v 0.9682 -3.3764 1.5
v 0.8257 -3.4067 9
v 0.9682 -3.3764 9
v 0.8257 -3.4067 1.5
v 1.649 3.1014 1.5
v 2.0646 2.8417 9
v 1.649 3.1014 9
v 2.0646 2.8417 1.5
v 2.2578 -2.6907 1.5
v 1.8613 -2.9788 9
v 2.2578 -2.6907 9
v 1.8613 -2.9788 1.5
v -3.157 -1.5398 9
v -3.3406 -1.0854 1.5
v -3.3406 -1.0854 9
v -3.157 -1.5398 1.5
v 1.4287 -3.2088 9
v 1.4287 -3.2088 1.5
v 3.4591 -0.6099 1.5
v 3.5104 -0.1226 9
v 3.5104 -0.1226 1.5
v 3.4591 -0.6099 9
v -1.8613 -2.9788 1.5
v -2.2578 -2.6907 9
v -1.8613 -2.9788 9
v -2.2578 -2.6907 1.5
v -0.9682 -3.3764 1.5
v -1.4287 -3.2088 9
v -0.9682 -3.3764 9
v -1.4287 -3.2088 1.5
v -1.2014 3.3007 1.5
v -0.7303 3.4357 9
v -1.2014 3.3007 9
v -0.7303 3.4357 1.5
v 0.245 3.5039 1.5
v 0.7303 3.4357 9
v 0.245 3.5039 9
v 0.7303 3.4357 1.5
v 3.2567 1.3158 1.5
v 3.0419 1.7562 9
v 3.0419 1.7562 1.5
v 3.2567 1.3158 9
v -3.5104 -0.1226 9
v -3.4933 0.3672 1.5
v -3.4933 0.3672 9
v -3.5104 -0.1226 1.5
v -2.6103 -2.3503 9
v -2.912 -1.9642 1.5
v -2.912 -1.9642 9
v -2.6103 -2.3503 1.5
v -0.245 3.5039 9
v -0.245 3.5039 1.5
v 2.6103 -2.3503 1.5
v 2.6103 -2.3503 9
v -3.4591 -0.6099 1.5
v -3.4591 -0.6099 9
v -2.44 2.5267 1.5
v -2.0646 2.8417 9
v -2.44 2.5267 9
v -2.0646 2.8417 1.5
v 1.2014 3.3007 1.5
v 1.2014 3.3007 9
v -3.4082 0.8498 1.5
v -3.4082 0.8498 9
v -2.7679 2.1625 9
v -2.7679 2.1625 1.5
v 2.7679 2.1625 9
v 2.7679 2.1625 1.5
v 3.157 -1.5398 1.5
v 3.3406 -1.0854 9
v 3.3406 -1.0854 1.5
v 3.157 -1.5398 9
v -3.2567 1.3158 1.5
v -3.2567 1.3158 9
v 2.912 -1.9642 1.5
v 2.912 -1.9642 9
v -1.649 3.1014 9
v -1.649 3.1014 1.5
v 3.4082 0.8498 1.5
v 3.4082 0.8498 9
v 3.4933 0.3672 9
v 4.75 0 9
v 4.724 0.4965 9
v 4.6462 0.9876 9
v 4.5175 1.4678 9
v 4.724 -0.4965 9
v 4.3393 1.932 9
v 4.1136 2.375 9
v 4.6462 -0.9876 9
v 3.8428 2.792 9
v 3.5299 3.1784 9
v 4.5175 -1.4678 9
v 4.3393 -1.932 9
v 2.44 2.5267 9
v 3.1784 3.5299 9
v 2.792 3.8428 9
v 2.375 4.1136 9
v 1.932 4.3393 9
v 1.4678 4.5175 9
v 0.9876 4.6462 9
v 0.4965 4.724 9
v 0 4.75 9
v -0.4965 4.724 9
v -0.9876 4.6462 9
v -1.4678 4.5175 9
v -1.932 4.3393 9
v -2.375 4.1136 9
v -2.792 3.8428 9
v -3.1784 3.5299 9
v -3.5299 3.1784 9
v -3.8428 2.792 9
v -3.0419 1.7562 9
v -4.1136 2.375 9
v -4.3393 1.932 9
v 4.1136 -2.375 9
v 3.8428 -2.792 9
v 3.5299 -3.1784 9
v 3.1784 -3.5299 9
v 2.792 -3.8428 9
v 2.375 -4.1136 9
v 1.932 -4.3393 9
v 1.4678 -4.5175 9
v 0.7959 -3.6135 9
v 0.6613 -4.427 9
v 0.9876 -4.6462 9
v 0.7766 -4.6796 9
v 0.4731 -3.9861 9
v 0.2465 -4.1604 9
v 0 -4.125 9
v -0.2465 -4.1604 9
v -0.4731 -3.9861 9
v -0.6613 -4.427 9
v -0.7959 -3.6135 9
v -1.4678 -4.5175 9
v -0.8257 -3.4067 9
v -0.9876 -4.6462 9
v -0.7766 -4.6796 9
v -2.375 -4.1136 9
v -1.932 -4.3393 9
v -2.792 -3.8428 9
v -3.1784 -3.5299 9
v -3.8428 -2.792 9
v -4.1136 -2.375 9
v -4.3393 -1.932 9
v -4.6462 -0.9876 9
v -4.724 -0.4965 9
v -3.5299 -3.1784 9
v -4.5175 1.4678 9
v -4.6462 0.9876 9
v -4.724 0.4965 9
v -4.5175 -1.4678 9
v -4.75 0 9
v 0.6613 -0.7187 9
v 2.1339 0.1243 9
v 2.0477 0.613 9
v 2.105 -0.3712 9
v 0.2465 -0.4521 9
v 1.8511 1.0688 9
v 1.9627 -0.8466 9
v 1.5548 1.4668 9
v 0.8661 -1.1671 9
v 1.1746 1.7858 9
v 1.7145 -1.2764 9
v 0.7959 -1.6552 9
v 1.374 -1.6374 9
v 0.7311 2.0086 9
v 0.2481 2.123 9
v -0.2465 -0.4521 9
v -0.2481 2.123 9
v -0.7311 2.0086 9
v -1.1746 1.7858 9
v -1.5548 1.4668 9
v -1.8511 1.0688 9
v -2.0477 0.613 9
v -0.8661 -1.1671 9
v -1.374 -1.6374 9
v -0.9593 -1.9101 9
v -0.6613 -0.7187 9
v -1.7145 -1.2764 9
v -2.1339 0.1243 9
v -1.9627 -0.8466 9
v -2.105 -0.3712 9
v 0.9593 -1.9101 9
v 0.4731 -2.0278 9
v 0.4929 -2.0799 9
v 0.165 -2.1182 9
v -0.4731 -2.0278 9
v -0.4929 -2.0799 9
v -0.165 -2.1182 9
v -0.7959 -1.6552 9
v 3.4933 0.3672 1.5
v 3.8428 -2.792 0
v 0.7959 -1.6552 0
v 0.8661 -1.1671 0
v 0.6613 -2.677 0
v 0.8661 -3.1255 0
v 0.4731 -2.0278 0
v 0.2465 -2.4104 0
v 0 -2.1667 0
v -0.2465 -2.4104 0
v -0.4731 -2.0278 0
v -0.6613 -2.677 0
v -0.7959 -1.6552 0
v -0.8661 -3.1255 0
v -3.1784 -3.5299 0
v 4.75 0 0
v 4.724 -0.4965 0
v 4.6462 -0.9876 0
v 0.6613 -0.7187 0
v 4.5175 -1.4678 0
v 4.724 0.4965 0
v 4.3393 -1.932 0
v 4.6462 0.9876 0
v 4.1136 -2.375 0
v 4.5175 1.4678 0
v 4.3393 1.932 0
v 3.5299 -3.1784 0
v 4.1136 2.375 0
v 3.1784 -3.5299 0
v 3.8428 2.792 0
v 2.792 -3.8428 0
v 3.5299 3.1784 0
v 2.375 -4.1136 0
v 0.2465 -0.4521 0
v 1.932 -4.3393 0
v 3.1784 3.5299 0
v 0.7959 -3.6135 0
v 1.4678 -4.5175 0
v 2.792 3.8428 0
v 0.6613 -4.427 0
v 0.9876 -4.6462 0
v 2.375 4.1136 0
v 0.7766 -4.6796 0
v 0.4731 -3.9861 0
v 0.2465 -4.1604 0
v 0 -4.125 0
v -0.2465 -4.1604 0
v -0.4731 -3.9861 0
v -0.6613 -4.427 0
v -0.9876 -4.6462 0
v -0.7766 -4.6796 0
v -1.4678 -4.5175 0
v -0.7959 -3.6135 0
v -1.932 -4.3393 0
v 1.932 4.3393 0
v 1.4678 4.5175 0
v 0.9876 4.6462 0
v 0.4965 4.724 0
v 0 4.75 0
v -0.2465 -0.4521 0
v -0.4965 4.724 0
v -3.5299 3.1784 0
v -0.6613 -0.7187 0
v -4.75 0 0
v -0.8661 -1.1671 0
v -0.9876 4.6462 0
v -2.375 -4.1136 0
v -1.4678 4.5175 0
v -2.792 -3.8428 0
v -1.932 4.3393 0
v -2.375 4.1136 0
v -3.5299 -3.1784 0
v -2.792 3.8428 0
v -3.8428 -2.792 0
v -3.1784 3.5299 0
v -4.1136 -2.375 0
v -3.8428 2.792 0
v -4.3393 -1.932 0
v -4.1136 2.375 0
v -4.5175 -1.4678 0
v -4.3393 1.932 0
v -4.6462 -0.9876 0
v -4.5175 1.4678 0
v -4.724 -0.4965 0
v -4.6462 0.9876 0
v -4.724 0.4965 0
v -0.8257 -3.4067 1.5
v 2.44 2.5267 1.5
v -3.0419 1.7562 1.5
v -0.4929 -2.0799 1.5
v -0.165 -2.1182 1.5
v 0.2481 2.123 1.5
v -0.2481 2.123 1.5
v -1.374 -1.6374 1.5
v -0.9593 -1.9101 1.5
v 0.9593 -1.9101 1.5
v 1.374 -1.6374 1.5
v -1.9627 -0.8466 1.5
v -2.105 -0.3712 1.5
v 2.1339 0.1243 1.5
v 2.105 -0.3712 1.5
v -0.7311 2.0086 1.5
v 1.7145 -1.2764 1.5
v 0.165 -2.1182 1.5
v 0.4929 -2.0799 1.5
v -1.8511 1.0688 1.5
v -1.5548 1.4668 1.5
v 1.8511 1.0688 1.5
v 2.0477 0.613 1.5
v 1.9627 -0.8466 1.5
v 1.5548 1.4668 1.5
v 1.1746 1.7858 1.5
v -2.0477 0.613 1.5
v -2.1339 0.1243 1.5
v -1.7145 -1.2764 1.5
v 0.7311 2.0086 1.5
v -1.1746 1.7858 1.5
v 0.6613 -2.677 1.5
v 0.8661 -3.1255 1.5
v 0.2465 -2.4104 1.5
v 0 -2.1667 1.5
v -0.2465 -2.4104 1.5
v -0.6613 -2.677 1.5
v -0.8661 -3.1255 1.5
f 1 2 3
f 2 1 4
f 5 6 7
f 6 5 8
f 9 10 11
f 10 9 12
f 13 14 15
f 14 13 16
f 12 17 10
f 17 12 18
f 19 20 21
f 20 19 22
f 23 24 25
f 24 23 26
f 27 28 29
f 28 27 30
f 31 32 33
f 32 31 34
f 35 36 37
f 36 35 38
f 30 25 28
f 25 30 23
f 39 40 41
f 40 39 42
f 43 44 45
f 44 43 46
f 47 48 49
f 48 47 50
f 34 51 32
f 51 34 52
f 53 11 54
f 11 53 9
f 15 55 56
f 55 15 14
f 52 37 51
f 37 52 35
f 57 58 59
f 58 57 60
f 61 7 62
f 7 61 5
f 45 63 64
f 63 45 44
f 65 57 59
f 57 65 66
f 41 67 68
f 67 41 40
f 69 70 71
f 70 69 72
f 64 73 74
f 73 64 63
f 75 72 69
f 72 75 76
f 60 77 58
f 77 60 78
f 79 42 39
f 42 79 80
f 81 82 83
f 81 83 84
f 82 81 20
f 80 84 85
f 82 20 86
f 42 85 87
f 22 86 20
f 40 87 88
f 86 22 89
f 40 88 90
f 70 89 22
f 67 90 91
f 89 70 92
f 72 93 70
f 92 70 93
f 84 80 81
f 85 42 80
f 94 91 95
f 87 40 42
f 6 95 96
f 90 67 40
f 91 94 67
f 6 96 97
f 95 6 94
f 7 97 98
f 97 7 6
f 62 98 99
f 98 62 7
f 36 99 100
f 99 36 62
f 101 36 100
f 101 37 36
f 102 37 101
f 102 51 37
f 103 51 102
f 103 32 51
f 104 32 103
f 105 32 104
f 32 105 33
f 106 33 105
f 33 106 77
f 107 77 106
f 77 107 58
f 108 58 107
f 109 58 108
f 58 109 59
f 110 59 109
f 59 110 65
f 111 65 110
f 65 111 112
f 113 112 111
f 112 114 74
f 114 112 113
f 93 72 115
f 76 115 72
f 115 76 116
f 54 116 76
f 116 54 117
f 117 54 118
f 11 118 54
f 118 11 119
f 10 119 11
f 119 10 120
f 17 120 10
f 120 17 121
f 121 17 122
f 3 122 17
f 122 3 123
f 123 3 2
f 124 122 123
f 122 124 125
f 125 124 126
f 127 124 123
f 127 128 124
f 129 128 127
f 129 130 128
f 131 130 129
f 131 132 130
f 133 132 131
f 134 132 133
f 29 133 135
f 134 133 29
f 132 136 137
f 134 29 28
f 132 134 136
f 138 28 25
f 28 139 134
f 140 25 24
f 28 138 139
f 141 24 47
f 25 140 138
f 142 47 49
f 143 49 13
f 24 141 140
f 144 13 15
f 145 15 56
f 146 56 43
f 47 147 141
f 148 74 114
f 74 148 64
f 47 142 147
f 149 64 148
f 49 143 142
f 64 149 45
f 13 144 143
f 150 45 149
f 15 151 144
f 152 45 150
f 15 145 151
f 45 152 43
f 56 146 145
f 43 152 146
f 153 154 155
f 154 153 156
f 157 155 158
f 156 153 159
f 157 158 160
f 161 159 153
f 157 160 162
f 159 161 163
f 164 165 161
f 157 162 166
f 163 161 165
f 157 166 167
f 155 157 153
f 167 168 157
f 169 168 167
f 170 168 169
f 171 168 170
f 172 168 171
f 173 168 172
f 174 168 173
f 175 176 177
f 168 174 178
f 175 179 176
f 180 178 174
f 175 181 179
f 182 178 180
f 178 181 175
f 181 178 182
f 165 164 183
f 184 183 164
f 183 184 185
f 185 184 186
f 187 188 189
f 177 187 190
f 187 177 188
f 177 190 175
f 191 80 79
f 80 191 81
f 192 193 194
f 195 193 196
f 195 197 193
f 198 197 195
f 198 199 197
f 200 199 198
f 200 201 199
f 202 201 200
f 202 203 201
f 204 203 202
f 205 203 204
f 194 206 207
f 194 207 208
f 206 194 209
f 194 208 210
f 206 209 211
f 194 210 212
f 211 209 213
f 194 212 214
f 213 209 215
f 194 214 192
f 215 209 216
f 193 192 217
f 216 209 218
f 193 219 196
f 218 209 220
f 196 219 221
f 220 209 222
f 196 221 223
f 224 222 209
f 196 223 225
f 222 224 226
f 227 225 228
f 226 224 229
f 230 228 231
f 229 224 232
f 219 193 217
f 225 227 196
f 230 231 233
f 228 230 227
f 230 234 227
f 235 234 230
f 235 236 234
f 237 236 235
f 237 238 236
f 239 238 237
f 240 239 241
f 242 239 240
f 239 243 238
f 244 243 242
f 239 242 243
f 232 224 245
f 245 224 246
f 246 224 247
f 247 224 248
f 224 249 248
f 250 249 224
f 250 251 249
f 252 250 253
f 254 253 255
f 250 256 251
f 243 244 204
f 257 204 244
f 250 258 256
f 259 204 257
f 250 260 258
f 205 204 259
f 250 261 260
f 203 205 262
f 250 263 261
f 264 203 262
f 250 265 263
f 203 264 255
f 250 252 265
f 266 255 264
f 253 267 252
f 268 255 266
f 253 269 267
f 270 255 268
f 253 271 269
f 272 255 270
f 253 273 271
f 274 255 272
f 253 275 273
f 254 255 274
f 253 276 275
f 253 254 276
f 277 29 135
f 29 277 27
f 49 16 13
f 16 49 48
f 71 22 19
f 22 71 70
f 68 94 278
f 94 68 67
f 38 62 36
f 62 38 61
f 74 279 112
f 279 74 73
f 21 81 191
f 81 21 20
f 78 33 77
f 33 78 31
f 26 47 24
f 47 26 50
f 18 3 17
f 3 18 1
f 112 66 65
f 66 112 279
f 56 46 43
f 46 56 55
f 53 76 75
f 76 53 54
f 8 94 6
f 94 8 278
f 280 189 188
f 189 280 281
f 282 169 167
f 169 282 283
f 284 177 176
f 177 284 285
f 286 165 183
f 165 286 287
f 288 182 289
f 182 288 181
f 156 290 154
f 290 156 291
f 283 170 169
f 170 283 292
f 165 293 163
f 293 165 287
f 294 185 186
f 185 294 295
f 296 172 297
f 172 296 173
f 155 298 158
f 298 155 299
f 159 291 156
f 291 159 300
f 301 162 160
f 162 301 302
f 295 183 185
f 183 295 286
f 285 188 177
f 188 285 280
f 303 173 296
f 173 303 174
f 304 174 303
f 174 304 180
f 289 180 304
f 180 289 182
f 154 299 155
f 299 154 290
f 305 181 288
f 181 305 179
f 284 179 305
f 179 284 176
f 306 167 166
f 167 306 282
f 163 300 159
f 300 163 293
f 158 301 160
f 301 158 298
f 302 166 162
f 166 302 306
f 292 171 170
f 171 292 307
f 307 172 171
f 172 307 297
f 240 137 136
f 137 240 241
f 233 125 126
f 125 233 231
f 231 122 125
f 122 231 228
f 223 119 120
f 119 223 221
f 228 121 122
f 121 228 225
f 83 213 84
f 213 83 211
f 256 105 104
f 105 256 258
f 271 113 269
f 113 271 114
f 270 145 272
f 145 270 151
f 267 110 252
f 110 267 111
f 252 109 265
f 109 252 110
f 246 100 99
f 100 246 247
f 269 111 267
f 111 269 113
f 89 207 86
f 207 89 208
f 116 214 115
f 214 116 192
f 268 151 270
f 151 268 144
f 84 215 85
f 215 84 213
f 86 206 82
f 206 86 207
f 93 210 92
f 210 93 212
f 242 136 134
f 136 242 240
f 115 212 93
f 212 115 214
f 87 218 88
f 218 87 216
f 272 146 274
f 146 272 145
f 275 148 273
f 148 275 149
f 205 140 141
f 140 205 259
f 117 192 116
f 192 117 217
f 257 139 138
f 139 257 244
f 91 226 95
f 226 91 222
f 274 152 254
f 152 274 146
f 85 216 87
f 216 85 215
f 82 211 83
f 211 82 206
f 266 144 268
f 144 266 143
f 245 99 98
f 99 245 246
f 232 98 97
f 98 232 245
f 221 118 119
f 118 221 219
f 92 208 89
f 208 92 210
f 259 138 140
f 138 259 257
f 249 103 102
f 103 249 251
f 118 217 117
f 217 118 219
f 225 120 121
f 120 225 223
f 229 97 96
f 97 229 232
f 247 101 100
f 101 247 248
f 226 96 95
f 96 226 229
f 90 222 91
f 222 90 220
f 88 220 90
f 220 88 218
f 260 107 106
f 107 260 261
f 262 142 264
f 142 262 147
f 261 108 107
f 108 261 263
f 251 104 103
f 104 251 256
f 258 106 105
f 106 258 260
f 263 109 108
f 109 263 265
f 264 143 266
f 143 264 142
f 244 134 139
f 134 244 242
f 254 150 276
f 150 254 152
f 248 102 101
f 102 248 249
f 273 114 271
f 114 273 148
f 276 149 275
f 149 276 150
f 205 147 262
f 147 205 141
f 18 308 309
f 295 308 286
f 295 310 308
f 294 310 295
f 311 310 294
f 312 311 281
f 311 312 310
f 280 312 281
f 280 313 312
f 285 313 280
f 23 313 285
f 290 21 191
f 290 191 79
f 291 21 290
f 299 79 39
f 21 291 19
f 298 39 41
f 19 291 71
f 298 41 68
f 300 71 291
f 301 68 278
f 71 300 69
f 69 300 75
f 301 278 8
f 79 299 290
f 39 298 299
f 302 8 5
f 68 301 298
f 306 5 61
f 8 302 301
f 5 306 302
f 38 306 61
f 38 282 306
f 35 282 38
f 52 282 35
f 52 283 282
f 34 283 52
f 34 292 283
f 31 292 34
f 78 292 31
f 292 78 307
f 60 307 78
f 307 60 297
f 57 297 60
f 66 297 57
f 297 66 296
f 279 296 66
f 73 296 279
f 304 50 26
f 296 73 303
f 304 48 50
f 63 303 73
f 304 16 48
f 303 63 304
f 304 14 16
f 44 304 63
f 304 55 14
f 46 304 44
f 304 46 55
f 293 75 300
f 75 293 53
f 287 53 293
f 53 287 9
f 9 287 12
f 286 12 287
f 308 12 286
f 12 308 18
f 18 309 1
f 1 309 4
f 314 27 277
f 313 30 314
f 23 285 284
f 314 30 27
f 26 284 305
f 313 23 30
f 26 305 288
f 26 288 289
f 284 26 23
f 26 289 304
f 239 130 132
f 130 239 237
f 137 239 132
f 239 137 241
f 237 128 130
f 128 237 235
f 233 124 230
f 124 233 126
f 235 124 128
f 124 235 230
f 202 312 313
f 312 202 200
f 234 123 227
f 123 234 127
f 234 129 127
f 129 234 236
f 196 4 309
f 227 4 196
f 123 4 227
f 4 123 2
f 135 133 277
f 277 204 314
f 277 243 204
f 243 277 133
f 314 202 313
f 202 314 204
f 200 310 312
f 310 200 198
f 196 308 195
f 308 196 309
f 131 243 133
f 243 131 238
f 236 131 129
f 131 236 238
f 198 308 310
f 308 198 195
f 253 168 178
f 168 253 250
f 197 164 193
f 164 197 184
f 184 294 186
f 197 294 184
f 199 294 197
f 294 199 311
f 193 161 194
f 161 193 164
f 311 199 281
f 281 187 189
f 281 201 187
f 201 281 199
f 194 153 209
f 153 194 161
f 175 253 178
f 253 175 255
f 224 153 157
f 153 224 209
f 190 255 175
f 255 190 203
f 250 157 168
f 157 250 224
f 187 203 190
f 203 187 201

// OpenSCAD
gasket_thickness = 3;
gasket_length = 6;
lanyard_length = 45;

tube_inner_dia = 3.75;
tube_outer_dia = 6.5;

filament_thickness = 1.75;
anti_warp = .15;

$fs = $preview ? 2 : 0.5;
$fa = $preview ? 15 : 5;

function anti_warp_widen(v) = v + ((filament_thickness * anti_warp) * 2);
function anti_warp_shrink(v) = v - ((filament_thickness * anti_warp) * 2);

module inner_cyl(height) {
	assert(height > 0);
	cylinder(h = height, d = anti_warp_widen(tube_inner_dia));
}

module outer_cyl(height) {
	assert(height > 0);
	cylinder(h = height, d = anti_warp_widen(tube_outer_dia));
}

module filament_hole(height) {
	assert(height > 0);
	cylinder(h = height, d = filament_thickness);
}

module tube_wall(height) {
	difference() {
		outer_cyl(height);
		inner_cyl(height);
	}
}

module gasket_base(height) {
	cylinder(h = height, d = tube_outer_dia + gasket_thickness);
} 

module gasket_outer_wall(height) {
	difference() {
		gasket_base(height);
		outer_cyl(height);
	}
}

module gasket_iso_base(height) {
	difference() {
		gasket_base(height);
		tube_wall(height);
	}
}

module lanyard_hole(length) {
	assert(length > 0);
	top_side = length / 10;
	bottom_side = -top_side;
	right_side = length / 4 + 3;
	left_side = -right_side;
	far_right_side = length / 2 + 2;
	far_left_side = -far_right_side;
	linear_extrude(gasket_thickness / 2, center = true) polygon([[far_left_side, 0],
		[left_side, bottom_side],
		[right_side, bottom_side],
		[far_right_side, 0],
		[right_side, top_side],
		[left_side, top_side]]);
}

module lanyard_holder(length) {
	assert(length > 0);
	difference() {
		lanyard_hole(length);
		lanyard_hole(length * 0.5);
	}
}

module lanyard_tail(length) {
	assert(length > 0);
	translate([0, length / 3, gasket_thickness / 4]) cube([gasket_thickness / 2, length, gasket_thickness / 2], center = true);
}

module lanyard(length) {
	assert(length > 0);
	lanyard_tail(length * 0.6);
	translate([0, tube_outer_dia / 2 + filament_thickness + length * 0.6, gasket_thickness / 4]) rotate([0, 0, 90]) lanyard_holder(length * 0.4);
}

module main() {
	rotate([0, 0, -90]) difference() {
		union() {
			gasket_base(gasket_thickness / 2);
			gasket_iso_base(gasket_length + gasket_thickness);
		}
		translate([tube_outer_dia / 2 + filament_thickness, 0]) filament_hole(gasket_thickness + gasket_length);
		translate([tube_outer_dia / 2, 0]) filament_hole(gasket_thickness + gasket_length);
		translate([tube_inner_dia / 2 - filament_thickness / 3, 0]) filament_hole(gasket_thickness + gasket_length);
	}
	//translate([0, tube_outer_dia / 2 + filament_thickness]) lanyard(lanyard_length);
}

main();
